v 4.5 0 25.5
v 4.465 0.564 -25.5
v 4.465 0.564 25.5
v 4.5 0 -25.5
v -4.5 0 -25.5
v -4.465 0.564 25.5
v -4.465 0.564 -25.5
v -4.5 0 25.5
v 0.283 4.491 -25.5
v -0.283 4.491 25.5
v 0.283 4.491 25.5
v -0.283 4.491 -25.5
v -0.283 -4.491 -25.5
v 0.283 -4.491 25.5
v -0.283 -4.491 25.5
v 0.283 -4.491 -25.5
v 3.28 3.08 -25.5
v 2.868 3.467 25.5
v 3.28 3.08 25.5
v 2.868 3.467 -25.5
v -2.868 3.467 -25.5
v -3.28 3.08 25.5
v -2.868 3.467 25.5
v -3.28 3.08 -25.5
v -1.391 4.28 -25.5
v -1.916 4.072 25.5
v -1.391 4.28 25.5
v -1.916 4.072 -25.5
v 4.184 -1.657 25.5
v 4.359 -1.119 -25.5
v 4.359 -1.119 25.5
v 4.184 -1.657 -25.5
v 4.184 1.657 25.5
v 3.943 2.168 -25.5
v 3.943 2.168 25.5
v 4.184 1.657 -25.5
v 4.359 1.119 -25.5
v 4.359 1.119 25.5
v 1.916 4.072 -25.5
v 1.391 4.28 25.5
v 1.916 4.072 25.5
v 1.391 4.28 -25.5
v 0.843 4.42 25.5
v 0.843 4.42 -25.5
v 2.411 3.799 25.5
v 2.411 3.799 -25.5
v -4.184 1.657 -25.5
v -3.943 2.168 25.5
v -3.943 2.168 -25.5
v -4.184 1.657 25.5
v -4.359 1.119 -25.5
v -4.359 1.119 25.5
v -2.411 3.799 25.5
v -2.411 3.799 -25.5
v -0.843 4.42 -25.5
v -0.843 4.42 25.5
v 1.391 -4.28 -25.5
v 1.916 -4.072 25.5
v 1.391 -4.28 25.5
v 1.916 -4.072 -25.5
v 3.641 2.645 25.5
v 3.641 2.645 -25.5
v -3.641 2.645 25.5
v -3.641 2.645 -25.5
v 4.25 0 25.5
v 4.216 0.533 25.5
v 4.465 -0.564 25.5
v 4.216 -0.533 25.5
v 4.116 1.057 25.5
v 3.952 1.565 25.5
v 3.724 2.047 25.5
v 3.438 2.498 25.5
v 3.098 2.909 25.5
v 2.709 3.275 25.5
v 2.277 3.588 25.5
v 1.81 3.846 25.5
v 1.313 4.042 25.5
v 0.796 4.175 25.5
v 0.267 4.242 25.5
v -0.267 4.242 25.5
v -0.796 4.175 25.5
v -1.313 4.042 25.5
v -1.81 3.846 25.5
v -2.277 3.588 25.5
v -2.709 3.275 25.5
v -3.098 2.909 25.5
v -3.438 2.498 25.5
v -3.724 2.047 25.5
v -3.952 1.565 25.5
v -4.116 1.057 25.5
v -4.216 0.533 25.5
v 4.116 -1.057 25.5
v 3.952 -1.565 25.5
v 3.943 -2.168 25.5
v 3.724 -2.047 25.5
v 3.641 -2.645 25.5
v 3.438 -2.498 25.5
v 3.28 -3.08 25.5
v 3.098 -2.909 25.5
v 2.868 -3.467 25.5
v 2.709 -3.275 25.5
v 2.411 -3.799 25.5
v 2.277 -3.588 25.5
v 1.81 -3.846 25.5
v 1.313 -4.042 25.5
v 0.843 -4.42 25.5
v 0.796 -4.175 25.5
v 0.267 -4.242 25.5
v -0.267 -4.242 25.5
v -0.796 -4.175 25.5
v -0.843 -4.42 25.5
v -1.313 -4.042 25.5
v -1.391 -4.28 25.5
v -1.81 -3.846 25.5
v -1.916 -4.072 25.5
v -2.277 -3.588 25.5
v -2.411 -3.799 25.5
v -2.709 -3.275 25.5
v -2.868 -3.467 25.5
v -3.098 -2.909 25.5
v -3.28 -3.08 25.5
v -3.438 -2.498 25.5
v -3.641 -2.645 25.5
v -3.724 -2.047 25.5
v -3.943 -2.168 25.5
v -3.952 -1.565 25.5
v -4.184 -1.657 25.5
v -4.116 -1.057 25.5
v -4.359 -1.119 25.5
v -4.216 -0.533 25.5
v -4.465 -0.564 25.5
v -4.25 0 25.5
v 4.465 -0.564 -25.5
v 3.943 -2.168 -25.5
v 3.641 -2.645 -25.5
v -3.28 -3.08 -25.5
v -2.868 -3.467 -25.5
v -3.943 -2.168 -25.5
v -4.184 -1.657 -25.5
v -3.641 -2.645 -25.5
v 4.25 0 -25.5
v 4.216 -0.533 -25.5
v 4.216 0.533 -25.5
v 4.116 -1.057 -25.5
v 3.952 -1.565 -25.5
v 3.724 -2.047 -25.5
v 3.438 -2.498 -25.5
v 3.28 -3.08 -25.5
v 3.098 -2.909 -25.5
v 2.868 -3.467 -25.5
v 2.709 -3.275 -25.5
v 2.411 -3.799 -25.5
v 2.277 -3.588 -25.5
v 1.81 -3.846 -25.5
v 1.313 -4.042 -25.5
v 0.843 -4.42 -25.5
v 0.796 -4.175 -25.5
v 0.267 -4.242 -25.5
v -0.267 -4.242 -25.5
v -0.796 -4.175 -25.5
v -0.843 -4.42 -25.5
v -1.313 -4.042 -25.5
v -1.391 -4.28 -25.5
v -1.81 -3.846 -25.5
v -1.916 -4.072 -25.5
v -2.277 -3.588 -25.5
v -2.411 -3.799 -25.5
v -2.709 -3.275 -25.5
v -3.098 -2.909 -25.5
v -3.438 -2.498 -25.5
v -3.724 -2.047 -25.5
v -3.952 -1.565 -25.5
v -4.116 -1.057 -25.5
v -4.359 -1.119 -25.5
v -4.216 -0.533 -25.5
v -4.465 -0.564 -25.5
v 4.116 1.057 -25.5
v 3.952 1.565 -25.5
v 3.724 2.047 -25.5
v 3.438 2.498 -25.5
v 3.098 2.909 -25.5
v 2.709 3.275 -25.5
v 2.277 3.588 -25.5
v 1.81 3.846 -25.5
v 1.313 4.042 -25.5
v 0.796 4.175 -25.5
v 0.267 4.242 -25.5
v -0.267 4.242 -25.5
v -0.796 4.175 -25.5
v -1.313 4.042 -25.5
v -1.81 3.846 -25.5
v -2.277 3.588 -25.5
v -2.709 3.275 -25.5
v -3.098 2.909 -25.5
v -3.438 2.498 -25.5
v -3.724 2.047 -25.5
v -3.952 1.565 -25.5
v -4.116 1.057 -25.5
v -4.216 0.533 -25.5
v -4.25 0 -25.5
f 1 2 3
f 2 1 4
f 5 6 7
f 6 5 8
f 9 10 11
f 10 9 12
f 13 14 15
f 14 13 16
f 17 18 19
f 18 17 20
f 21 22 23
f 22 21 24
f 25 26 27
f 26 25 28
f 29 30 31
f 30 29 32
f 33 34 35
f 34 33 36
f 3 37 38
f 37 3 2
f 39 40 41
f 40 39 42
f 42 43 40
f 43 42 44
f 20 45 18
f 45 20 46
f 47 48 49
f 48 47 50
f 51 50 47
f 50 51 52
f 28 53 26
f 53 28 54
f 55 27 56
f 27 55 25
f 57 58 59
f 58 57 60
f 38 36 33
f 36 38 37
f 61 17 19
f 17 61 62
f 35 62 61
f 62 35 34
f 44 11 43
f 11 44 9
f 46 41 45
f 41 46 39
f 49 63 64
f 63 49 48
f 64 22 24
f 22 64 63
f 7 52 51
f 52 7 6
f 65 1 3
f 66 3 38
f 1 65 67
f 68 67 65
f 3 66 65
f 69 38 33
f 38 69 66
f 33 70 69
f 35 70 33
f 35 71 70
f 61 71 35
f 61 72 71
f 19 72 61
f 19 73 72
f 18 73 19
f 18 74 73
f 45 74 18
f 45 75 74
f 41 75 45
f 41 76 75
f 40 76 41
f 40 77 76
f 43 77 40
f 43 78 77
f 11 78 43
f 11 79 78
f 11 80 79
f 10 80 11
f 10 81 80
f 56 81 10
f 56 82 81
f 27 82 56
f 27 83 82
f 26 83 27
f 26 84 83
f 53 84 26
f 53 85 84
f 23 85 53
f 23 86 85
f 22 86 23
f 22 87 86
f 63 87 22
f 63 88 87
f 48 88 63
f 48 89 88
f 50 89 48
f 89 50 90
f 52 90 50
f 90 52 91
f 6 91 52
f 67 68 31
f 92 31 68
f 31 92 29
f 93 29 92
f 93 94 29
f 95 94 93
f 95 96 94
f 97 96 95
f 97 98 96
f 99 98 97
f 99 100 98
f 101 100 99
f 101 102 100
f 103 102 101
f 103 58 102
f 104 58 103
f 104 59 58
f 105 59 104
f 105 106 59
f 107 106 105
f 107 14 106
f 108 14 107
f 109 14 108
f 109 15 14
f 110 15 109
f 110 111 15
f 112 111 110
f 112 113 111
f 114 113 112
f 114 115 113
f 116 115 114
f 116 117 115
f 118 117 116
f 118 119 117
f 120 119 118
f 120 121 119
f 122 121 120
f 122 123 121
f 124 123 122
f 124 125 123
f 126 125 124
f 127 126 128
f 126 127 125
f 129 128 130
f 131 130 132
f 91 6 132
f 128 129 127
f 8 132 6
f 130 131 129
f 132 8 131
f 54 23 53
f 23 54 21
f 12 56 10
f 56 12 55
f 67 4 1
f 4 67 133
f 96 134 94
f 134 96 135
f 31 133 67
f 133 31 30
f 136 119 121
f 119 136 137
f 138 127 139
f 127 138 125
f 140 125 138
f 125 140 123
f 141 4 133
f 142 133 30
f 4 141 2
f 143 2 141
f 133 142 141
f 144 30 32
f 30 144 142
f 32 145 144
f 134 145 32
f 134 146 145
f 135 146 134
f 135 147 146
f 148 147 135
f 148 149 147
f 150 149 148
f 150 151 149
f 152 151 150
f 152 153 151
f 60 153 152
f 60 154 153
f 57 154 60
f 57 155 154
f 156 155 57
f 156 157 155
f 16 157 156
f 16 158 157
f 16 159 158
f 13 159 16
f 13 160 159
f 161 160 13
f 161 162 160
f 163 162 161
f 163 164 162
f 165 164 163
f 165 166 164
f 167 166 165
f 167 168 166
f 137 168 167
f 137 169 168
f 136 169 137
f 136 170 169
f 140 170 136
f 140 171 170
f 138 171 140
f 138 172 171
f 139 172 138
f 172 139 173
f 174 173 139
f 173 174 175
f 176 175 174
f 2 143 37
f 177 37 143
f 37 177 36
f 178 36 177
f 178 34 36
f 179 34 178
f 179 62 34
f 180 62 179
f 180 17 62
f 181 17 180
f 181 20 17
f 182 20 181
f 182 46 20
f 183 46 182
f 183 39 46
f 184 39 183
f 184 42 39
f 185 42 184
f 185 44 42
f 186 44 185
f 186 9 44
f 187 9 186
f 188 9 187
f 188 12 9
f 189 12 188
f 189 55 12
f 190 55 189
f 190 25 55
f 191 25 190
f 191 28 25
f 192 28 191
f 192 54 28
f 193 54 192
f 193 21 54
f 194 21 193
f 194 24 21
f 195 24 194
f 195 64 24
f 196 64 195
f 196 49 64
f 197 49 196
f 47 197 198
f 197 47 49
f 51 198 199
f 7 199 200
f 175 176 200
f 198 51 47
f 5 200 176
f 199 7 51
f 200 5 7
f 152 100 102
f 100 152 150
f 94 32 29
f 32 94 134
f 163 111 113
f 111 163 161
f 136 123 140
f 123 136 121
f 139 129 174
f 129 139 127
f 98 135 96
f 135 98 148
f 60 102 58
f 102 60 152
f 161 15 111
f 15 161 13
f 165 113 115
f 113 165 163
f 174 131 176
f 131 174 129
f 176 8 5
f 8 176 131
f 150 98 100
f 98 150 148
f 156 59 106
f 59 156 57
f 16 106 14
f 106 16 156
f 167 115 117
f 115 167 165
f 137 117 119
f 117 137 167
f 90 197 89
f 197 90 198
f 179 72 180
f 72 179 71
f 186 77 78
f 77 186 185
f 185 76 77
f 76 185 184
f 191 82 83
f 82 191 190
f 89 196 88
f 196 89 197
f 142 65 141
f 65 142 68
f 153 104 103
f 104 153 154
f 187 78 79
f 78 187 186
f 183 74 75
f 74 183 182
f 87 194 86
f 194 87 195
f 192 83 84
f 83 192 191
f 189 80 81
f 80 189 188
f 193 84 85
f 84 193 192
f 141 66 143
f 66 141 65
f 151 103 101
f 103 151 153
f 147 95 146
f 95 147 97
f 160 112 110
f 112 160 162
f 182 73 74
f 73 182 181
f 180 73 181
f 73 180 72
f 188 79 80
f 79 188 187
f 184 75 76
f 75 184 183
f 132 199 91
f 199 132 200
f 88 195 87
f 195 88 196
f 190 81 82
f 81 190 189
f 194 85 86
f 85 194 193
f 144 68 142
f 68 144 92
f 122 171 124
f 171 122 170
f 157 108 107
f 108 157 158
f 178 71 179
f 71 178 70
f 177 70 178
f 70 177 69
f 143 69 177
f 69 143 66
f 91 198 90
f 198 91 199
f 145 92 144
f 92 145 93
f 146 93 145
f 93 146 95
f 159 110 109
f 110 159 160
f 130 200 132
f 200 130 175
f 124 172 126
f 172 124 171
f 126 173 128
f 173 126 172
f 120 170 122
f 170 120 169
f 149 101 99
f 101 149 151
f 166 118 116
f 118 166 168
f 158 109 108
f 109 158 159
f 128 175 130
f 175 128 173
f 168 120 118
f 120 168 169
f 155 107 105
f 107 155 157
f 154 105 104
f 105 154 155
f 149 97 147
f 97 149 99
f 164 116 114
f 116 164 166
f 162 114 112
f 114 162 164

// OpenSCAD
$fn = 50;


difference() {
	union() {
		translate(v = [0, 0, -25.5000000000]) {
			cylinder(h = 51, r = 4.5000000000);
		}
	}
	union() {
		translate(v = [0, 0, -100.0000000000]) {
			cylinder(h = 200, r = 4.2500000000);
		}
	}
}
